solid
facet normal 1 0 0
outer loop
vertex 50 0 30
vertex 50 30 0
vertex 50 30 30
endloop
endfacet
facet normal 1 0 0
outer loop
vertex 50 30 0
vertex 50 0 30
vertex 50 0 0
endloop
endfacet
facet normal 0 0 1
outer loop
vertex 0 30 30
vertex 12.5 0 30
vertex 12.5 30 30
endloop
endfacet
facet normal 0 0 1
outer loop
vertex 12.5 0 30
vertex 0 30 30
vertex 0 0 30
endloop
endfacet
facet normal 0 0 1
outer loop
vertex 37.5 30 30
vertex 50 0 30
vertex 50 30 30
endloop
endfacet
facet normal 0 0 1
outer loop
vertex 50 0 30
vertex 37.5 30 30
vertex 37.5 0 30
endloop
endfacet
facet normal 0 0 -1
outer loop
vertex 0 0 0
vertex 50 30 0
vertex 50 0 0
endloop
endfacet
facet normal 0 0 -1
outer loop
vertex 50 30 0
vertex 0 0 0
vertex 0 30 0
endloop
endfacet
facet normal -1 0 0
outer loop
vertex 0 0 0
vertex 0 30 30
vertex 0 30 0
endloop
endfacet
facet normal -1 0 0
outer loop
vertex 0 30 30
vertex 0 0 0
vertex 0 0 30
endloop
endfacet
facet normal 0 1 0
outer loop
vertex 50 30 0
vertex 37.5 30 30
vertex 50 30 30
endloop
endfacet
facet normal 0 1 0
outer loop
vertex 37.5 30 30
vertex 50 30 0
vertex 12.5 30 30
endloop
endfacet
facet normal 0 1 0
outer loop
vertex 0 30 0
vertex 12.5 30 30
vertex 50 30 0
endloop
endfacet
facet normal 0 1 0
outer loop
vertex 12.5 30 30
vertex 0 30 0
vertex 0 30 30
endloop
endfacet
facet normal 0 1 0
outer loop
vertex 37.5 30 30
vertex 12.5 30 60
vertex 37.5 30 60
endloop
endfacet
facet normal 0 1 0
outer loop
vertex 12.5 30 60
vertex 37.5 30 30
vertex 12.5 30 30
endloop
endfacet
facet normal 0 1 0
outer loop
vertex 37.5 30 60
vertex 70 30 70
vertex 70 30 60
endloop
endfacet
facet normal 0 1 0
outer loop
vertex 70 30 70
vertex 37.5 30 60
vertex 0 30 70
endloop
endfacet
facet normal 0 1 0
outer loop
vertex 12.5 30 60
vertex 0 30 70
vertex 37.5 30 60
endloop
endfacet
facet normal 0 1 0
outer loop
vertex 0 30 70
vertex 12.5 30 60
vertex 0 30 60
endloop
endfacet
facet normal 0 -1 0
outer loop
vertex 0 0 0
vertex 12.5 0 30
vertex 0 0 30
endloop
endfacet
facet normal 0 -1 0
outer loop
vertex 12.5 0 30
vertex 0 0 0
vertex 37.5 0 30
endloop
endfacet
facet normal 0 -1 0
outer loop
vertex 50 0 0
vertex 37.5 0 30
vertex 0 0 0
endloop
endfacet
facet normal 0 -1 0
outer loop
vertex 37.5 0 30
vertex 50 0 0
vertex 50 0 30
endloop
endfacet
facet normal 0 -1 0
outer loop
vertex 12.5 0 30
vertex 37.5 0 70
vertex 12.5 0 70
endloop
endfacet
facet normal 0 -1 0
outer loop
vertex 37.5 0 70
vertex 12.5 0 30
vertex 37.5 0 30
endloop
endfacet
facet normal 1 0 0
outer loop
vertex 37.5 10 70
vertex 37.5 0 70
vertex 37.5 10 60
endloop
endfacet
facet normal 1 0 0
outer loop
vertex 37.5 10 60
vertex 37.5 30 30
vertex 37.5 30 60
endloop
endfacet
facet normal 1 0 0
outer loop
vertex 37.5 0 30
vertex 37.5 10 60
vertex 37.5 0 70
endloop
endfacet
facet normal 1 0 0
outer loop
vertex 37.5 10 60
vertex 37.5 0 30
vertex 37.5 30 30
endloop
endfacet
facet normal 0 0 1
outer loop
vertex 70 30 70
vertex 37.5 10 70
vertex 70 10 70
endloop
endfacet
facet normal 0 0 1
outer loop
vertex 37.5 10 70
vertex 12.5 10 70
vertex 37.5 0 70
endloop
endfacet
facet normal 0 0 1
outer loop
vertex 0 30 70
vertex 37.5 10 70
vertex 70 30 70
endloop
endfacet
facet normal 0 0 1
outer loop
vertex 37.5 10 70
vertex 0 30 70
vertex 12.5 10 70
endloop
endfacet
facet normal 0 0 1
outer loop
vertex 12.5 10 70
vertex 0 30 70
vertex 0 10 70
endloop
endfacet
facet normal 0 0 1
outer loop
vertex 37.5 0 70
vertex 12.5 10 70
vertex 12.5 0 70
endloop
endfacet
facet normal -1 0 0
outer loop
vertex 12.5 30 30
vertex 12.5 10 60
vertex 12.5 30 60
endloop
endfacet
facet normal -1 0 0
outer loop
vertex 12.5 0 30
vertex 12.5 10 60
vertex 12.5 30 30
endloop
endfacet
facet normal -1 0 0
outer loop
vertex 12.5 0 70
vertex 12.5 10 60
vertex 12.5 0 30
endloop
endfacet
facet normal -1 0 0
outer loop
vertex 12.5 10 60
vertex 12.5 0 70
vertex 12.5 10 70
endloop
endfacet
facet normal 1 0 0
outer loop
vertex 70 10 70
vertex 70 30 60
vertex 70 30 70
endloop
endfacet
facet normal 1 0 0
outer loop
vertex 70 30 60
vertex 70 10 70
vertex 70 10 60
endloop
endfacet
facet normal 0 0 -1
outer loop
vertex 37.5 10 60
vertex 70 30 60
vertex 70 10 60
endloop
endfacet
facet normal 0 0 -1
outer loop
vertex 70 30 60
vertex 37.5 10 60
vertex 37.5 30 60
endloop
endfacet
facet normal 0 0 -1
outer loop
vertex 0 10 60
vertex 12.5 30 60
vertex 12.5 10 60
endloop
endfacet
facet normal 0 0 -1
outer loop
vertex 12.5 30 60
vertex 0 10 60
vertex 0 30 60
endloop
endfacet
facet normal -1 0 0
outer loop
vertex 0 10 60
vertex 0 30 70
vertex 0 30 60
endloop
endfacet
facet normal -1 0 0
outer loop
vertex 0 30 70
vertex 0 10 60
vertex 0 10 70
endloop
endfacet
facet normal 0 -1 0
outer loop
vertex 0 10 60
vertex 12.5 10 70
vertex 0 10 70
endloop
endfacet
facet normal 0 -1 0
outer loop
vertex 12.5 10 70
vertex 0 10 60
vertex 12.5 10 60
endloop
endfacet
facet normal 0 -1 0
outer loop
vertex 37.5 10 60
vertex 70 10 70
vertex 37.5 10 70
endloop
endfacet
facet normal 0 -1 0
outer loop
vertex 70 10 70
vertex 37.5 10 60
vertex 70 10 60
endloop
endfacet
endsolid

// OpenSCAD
// Base block dimensions
base_block_width = 50;
base_block_depth = 30;
base_block_height = 30; // Increased height to match the original model
base_block_bevel = 0; // Removed bevel to make edges sharp

// Vertical arm dimensions
vertical_arm_width = 25; // Adjusted width to match the original model
vertical_arm_depth = 30;
vertical_arm_height = 40;
vertical_arm_taper = 0; // Removed taper to make the shape consistent

// Horizontal arm dimensions
horizontal_arm_width = 70; // Extended length to match the original model
horizontal_arm_depth = 20;
horizontal_arm_height = 10;
horizontal_arm_bevel = 0; // Removed bevel on the underside to make it flat

// Base block
module base_block() {
    cube([base_block_width, base_block_depth, base_block_height]);
}

// Vertical arm
module vertical_arm() {
    translate([12.5, 0, base_block_height]) // Centered on top of the base block
    cube([vertical_arm_width, vertical_arm_depth, vertical_arm_height]);
}

// Horizontal arm
module horizontal_arm() {
    translate([0, 10, base_block_height + vertical_arm_height - horizontal_arm_height]) // Lowered position to align with the original model
    cube([horizontal_arm_width, horizontal_arm_depth, horizontal_arm_height]);
}

// Assemble the model
module flexible_coupling() {
    base_block();
    vertical_arm();
    horizontal_arm();
}

// Render the model
flexible_coupling();
